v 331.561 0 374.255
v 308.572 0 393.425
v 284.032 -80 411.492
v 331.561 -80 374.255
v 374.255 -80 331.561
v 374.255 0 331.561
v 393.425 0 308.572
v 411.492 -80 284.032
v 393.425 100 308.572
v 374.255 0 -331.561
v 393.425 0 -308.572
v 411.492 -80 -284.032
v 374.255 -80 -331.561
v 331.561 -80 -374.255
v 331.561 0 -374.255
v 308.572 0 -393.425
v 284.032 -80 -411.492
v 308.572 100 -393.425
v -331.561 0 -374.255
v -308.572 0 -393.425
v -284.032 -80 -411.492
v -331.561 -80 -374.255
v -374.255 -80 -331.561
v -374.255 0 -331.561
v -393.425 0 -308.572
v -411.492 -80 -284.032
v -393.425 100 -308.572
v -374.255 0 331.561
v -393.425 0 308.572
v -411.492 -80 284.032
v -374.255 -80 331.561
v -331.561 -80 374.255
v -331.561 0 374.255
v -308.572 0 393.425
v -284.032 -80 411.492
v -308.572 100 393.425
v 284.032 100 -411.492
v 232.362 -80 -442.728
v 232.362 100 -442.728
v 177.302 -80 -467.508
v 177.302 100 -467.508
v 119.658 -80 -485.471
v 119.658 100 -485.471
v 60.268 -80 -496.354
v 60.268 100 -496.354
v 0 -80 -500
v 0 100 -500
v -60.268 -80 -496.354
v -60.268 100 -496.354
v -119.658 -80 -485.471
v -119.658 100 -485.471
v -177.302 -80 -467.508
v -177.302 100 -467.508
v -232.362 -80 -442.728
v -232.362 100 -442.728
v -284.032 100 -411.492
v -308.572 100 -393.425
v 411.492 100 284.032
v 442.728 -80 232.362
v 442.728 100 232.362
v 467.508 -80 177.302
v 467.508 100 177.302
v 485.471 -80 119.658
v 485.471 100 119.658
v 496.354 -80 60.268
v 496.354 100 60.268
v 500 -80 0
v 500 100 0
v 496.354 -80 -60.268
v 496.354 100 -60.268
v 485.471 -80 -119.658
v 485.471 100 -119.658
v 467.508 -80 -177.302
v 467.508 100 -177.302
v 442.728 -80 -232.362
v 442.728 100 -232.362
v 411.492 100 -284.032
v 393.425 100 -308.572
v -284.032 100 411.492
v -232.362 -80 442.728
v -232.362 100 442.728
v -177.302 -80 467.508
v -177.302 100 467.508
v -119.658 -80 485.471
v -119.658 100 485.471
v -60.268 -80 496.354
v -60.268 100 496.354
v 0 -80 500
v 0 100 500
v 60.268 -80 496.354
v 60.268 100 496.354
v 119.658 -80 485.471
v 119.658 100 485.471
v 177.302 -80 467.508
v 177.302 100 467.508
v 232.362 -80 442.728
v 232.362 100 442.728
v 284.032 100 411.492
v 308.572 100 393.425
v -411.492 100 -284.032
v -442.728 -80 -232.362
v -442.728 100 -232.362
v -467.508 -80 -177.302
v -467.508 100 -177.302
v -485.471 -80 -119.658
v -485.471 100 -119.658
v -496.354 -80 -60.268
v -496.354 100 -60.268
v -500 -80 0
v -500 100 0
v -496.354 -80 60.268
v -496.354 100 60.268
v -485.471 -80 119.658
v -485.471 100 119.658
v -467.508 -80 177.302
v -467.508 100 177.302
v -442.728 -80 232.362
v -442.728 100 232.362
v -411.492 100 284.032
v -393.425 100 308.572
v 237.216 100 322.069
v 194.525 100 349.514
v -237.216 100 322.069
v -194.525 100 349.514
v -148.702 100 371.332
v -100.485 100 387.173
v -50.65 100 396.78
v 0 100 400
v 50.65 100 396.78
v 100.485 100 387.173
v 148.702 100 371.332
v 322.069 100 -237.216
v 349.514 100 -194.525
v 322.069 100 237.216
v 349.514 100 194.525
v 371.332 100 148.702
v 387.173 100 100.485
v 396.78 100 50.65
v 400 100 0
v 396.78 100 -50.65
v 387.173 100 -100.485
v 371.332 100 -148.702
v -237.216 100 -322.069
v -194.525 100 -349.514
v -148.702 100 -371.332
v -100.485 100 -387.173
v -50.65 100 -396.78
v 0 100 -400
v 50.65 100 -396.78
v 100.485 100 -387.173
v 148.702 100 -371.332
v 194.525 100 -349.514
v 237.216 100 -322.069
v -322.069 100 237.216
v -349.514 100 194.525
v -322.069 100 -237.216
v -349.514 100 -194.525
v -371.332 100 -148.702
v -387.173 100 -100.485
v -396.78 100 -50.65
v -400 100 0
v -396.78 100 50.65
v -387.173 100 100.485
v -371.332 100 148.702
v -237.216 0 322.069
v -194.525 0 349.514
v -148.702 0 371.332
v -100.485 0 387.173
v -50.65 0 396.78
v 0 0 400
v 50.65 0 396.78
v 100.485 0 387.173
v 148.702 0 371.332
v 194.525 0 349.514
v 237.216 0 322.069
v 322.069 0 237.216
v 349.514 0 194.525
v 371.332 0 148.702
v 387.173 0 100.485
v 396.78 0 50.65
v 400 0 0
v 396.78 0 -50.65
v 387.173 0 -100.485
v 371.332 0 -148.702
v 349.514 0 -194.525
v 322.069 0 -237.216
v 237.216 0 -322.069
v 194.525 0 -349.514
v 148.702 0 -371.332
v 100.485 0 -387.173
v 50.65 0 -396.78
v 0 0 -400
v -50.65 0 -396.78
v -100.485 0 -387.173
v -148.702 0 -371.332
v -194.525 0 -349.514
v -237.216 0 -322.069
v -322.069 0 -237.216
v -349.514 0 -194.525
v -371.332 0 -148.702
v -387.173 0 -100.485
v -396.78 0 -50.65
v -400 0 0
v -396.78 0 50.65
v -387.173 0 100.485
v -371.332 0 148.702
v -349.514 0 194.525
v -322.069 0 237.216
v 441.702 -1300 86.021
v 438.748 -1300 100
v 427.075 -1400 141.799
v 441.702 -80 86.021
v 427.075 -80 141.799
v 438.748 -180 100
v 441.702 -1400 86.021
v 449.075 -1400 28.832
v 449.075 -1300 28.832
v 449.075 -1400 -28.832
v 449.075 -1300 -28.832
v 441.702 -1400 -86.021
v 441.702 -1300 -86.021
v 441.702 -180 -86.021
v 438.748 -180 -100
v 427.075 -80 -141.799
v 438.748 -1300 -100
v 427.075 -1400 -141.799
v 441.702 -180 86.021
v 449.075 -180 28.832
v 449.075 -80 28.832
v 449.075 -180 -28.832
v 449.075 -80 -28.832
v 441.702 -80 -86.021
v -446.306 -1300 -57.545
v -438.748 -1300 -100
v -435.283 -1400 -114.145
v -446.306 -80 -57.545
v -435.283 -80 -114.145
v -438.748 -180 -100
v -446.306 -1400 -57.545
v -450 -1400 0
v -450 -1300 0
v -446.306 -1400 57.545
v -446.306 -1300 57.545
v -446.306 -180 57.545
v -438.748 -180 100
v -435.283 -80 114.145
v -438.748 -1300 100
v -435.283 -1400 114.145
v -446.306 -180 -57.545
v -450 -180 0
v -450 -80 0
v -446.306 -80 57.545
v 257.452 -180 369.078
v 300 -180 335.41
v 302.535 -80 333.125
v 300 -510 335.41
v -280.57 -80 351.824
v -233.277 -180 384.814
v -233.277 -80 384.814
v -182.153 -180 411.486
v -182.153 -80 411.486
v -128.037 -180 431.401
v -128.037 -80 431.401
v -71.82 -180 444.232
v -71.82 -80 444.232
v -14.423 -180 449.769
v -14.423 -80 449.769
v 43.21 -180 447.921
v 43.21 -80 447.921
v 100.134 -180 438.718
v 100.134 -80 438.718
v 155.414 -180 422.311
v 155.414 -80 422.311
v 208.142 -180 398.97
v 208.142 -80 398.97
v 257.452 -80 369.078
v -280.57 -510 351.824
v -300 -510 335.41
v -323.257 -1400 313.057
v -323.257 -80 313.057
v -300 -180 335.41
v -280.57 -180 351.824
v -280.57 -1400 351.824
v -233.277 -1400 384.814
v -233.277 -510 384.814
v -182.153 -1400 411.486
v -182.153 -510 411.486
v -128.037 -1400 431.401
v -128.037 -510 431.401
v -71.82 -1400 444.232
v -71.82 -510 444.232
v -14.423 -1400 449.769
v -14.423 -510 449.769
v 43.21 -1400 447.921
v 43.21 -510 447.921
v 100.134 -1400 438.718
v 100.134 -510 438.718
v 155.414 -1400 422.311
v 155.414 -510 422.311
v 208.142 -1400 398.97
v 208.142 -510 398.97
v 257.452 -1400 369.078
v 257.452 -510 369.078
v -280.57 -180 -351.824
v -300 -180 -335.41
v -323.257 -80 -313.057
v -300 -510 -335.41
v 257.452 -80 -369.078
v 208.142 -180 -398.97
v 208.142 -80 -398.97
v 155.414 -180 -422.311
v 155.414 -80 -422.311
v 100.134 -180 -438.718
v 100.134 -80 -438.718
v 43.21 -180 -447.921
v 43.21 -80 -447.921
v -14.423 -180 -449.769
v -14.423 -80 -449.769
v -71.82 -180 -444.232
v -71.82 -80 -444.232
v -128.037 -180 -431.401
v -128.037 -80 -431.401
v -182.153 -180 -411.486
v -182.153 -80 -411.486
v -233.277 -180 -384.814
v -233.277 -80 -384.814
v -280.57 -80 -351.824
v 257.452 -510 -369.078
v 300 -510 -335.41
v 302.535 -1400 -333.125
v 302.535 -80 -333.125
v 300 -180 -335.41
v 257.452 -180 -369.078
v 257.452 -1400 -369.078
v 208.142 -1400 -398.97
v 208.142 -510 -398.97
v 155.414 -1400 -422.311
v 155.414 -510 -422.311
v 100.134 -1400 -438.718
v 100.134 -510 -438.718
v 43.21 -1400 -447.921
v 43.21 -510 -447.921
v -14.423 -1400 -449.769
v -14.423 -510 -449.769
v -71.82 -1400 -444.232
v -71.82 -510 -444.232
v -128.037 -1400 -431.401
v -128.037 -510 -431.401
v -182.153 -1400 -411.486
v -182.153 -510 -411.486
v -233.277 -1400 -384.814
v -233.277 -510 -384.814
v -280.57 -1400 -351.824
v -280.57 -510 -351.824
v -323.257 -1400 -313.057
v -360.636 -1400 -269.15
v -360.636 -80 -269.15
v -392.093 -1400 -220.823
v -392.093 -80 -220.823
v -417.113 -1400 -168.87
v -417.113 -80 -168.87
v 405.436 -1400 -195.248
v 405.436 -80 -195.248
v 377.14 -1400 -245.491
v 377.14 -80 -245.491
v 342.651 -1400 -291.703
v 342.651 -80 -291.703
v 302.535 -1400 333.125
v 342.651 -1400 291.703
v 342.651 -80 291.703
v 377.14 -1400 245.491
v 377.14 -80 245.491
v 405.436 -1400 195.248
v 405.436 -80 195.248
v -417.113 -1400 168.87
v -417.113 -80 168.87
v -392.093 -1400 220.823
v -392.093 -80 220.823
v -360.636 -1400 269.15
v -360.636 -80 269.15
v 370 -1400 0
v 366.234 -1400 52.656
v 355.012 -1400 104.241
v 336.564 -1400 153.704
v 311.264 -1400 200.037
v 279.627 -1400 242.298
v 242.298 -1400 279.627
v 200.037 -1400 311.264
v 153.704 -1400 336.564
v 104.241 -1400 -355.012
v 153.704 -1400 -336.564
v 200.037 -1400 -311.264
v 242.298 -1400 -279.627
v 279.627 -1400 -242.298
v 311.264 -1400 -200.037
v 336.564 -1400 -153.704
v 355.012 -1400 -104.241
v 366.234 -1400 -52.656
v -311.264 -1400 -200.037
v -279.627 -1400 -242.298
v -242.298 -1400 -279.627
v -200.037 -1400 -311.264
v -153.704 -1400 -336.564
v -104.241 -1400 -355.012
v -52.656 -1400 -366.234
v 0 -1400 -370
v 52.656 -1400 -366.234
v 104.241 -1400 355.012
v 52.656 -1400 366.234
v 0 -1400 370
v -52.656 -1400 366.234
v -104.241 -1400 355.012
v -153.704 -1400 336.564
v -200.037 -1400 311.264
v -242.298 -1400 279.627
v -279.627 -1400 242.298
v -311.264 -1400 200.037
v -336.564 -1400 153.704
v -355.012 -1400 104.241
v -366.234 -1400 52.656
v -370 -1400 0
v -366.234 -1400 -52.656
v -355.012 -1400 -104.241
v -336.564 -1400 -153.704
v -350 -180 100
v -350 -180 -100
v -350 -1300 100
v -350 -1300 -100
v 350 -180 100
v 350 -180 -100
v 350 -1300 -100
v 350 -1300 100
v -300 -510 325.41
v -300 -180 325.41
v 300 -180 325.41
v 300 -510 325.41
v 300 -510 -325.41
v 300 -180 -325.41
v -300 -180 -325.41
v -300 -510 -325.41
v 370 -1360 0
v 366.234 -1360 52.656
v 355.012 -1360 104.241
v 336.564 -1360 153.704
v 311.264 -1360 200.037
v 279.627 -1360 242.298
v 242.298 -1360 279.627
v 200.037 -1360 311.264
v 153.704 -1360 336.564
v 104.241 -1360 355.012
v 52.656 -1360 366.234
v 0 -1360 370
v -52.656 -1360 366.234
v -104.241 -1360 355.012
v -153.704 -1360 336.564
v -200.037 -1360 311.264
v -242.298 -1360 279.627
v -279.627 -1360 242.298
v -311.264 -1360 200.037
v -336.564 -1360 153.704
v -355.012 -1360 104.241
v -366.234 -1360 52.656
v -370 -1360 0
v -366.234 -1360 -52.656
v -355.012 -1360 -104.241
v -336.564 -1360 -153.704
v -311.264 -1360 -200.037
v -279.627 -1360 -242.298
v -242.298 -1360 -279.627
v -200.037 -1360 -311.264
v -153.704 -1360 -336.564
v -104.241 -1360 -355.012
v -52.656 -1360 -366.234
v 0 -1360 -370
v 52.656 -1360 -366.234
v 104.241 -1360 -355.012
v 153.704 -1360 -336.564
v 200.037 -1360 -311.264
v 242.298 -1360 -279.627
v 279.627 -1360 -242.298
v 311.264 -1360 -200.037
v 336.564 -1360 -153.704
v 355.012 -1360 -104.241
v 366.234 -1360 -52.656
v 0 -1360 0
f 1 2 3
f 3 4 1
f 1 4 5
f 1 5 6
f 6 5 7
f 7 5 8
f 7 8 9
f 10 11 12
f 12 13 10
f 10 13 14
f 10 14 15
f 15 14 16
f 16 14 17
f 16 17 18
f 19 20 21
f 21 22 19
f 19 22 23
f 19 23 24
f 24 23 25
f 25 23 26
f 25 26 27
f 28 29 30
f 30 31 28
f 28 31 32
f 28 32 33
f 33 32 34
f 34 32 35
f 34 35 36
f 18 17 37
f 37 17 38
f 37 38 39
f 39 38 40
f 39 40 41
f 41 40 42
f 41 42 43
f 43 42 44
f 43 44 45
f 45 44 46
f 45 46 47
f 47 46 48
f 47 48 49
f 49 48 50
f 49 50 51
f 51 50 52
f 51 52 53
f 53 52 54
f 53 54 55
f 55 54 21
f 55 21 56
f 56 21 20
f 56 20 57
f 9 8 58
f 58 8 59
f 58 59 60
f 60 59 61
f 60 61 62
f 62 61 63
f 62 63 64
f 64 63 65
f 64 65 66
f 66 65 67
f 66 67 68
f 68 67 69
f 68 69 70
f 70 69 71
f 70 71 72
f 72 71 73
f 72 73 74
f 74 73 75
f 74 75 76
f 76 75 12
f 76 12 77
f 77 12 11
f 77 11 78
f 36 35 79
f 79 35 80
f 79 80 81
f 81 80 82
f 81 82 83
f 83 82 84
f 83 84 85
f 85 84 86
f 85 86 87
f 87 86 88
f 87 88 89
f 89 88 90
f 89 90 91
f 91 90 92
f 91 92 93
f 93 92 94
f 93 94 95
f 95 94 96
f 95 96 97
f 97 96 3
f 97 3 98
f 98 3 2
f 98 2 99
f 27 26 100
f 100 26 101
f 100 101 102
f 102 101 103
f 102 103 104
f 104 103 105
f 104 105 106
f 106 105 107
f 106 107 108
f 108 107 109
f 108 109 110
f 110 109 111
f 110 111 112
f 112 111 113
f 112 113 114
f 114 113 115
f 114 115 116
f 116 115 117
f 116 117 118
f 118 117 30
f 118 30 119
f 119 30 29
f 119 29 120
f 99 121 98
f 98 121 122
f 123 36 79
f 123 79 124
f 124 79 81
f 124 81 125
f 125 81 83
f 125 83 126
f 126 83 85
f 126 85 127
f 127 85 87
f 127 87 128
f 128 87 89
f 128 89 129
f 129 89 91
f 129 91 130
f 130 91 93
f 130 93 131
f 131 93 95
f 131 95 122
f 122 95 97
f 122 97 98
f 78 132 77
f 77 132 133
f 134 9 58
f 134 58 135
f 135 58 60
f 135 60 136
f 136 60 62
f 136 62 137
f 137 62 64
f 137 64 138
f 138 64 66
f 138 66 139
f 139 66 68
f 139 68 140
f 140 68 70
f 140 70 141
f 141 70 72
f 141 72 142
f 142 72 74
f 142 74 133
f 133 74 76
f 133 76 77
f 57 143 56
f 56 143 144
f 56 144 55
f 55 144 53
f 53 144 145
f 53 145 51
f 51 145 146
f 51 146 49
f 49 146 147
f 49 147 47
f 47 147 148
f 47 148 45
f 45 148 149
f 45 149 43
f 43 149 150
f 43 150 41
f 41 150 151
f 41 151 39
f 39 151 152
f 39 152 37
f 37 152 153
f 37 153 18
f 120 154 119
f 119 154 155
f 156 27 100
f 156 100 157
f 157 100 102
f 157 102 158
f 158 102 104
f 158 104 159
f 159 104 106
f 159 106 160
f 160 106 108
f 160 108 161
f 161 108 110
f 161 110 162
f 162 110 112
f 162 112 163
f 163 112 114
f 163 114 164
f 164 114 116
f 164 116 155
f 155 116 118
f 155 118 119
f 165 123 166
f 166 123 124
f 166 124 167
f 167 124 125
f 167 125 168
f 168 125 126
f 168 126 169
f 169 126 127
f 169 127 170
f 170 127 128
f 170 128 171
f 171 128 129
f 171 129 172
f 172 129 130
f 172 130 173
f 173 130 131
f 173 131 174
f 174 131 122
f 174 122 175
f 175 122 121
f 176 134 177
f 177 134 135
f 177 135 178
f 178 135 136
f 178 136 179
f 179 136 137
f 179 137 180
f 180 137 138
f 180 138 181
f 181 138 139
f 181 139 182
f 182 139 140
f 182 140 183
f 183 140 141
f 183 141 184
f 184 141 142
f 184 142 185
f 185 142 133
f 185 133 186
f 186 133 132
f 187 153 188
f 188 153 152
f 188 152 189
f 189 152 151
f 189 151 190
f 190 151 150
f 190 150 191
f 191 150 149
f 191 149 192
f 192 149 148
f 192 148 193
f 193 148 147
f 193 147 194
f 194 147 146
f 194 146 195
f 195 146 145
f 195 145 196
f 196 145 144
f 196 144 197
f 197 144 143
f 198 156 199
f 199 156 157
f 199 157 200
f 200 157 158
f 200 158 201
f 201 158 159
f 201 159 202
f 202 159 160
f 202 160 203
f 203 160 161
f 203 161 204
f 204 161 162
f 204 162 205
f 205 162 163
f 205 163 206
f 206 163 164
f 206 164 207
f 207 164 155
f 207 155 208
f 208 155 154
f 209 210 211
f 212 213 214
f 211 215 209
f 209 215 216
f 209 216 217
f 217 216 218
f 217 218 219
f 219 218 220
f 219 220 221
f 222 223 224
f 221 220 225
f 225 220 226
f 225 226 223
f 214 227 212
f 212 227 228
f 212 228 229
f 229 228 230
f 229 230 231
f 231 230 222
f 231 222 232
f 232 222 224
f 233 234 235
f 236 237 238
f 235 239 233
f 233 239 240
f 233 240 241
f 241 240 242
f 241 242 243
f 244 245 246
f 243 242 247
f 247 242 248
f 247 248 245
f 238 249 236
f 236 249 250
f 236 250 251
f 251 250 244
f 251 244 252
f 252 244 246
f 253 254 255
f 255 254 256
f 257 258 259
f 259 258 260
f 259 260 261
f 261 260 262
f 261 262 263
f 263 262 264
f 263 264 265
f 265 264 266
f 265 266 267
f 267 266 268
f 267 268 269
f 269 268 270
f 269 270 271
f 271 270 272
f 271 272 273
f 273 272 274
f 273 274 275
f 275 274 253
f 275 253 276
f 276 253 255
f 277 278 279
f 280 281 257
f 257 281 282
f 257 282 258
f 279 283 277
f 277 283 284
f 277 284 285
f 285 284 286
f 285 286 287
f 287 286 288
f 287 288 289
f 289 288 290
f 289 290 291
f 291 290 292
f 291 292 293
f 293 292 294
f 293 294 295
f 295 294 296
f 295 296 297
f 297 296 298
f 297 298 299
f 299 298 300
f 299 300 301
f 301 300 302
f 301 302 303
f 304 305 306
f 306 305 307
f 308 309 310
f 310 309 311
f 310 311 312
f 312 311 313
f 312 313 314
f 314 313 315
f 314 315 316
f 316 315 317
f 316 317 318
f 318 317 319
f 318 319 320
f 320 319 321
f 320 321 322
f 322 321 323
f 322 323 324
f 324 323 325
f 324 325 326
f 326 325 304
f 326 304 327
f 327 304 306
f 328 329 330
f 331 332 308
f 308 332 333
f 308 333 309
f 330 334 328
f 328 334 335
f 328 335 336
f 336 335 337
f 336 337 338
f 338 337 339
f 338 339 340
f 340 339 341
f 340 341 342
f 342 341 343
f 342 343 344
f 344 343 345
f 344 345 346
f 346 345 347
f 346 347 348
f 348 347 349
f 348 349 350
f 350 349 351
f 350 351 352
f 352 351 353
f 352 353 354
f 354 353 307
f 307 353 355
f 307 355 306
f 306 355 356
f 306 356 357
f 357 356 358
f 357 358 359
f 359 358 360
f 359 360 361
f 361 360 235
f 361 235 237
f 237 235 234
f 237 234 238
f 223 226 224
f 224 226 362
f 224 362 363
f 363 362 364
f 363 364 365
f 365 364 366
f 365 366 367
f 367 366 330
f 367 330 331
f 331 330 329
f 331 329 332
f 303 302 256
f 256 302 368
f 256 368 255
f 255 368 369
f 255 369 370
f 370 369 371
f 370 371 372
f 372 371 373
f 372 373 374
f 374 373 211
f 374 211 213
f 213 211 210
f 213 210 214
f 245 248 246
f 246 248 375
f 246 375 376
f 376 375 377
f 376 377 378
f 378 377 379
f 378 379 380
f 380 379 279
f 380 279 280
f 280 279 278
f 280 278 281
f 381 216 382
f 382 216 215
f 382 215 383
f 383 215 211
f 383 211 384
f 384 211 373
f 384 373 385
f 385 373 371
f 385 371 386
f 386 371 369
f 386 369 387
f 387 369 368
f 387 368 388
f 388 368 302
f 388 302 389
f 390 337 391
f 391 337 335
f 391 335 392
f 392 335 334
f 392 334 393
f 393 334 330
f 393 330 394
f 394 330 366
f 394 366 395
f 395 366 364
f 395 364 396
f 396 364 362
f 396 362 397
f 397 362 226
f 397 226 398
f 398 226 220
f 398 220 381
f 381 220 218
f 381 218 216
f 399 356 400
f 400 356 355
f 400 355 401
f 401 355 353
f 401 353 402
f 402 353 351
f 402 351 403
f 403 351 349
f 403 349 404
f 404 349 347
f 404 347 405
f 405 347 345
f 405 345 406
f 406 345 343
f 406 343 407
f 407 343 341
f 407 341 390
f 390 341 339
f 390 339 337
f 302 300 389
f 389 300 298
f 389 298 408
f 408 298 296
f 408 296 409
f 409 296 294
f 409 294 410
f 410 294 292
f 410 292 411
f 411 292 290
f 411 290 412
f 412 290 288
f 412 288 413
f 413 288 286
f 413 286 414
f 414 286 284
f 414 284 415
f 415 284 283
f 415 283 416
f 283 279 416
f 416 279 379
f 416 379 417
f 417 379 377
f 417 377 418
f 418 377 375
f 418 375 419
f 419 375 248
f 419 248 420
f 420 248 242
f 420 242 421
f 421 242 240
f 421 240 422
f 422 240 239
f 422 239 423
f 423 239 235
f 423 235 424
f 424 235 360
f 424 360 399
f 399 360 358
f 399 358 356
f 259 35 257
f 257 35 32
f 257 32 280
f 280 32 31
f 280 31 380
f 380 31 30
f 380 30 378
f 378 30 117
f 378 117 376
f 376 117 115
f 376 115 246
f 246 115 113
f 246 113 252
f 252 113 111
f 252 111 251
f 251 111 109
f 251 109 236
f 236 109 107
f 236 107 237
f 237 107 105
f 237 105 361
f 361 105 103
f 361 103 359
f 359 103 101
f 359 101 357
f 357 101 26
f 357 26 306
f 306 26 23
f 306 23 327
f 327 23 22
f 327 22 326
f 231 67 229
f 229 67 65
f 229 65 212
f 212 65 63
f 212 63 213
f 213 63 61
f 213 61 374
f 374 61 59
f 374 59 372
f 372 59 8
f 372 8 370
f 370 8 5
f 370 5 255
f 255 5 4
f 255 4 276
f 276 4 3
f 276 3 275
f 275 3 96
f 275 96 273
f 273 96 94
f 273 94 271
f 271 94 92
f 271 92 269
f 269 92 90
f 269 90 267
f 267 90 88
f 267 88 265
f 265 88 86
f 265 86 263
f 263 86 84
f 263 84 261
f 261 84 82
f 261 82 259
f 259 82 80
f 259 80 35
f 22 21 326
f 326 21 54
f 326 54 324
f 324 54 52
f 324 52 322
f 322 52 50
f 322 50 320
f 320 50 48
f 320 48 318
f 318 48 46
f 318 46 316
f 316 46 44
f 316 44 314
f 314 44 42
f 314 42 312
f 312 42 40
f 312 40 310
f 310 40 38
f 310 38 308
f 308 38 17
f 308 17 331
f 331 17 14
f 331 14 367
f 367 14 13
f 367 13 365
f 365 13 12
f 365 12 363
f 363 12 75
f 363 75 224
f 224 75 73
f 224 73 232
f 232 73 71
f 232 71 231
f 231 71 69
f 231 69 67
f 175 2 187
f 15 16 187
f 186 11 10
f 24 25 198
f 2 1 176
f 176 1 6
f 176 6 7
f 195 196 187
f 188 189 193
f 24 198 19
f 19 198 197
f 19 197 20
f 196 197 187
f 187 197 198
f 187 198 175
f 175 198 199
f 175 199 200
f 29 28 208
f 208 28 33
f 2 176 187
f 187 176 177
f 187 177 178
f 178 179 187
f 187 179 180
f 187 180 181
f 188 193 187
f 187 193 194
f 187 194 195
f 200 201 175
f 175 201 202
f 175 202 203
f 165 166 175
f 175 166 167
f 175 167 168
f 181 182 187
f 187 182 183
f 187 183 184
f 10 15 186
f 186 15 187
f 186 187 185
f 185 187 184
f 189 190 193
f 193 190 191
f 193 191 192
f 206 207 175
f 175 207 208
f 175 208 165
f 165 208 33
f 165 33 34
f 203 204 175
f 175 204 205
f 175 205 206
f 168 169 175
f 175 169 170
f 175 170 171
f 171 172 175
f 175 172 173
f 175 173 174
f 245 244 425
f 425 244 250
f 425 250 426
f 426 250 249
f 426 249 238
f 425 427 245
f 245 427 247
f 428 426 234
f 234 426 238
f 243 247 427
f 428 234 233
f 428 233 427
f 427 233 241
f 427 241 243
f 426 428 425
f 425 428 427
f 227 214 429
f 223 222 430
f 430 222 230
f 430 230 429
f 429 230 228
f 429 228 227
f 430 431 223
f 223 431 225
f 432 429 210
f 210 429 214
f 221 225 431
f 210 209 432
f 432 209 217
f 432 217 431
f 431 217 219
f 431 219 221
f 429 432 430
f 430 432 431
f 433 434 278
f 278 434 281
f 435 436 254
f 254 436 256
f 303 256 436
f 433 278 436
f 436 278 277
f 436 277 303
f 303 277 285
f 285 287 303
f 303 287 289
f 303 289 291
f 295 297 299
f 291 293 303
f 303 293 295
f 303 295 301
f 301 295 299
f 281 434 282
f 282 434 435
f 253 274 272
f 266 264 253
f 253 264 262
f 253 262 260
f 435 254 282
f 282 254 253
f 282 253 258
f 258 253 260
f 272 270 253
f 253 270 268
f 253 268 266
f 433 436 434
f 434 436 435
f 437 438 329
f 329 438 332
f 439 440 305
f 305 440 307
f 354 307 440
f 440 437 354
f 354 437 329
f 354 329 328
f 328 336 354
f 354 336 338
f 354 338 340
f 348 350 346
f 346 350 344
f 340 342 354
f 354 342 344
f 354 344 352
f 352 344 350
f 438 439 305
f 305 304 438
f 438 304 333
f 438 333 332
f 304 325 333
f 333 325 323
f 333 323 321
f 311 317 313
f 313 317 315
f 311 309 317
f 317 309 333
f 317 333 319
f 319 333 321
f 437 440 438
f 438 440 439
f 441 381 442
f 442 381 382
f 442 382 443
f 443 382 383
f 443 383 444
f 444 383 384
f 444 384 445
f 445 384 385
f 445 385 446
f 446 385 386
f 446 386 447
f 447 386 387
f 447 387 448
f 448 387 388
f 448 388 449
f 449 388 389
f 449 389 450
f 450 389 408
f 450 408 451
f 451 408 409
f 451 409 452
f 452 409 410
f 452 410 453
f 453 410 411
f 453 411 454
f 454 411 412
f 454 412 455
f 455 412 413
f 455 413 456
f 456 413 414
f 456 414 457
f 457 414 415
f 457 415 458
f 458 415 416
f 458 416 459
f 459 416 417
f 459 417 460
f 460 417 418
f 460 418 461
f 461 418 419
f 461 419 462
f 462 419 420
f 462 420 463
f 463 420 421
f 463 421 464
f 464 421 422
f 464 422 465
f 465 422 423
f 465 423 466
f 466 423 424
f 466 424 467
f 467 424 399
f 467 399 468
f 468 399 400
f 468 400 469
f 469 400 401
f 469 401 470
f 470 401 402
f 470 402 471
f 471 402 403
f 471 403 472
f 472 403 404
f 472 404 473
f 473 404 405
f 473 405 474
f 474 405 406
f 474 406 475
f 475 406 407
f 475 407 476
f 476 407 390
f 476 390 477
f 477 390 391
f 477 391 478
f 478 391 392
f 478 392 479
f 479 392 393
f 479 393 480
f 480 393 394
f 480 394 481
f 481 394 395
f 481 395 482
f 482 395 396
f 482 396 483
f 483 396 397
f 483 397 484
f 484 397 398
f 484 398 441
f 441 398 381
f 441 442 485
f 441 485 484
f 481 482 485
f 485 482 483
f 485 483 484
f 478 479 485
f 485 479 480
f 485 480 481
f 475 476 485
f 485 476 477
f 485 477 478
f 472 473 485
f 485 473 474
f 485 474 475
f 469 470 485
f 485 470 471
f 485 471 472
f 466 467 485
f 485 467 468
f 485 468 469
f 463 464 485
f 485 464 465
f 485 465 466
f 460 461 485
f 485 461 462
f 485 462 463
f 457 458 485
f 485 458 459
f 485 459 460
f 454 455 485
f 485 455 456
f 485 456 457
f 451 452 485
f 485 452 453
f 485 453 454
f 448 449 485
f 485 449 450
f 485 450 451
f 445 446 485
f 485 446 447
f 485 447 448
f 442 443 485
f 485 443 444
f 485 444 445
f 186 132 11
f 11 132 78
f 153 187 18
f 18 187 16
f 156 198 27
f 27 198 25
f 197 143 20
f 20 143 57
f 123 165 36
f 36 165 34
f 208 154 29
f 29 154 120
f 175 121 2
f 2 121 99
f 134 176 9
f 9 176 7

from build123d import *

# Parameters (mm, degrees)
SOLAR_DIVOT_SKETCH_W              = 100
SOLAR_DIVOT_SKETCH_H              = 200
SOLAR_DIVOT_CUT_DEPTH             = 1120
MISC_BAY_SKETCH_W                 = 600
MISC_BAY_SKETCH_H                 = 124.589803375
MISC_BAY_CUT_DEPTH                = 330
LAUNCH_ADAPTOR_BAY_SKETCH_R       = 370
LAUNCH_ADAPTOR_BAY_CUT_DEPTH      = 40
GRIPPER_GAP_CUT_DEPTH             = 100
GRIPPER_GAP_CUT_PROPAGATION_COUNT = 4


with BuildPart() as part:
    # Body Block Sketch → Body Block Revolve (revolve)
    with BuildSketch(Plane.XY, mode=Mode.PRIVATE) as body_block_revolve_sk:
        Polygon((0, 0), (400, 0), (400, 100), (500, 100), (500, 0), (500, -80), (450, -80), (450, -1400), (0, -1400), align=None)
    revolve(body_block_revolve_sk.sketch.rotate(Axis((0, 0, 0), (0, -1, 0)), 180), axis=Axis((0, 0, 0), (0, -1, 0)))

    # Solar Divot Sketch → Solar Divot Cut (cut)
    with BuildSketch(Plane(origin=(0, -180, 0), x_dir=(-1, 0, 0), z_dir=(0, -1, 0))):
        with Locations((-400, 0)):
            Rectangle(SOLAR_DIVOT_SKETCH_W, SOLAR_DIVOT_SKETCH_H)
        with Locations((400, 0)):
            Rectangle(SOLAR_DIVOT_SKETCH_W, SOLAR_DIVOT_SKETCH_H)
    extrude(amount=SOLAR_DIVOT_CUT_DEPTH, mode=Mode.SUBTRACT)

    # Misc Bay Sketch → Misc Bay Cut (cut)
    with BuildSketch(Plane(origin=(0, -180, 0), x_dir=(-1, 0, 0), z_dir=(0, -1, 0))):
        with Locations((0, 387.705098313)):
            Rectangle(MISC_BAY_SKETCH_W, MISC_BAY_SKETCH_H)
        with Locations((0, -387.705098313)):
            Rectangle(MISC_BAY_SKETCH_W, MISC_BAY_SKETCH_H)
    extrude(amount=MISC_BAY_CUT_DEPTH, mode=Mode.SUBTRACT)

    # Launch Adaptor Bay Sketch → Launch Adaptor Bay Cut (cut)
    with BuildSketch(Plane.XZ.offset(1400)):
        Circle(LAUNCH_ADAPTOR_BAY_SKETCH_R)
    extrude(amount=-LAUNCH_ADAPTOR_BAY_CUT_DEPTH, mode=Mode.SUBTRACT)

    # Gripper Gap Sketch → Gripper Gap Cut (cut)
    with BuildSketch(Plane(origin=(0, 0, 0), x_dir=(1, 0, 0), z_dir=(0, 1, 0))):
        Polygon((311.126983722, 395.979797464), (395.979797464, 311.126983722), (42.426406871, -42.426406871), (-42.426406871, 42.426406871), align=None)
    gripper_gap_cut = extrude(amount=GRIPPER_GAP_CUT_DEPTH, mode=Mode.SUBTRACT)

    # Gripper Gap Cut Propagation: Gripper Gap Cut ×4 about axis
    gripper_gap_cut_propagation_axis = Axis((0, 0, 0), (0, 1, 0))
    for i in range(1, GRIPPER_GAP_CUT_PROPAGATION_COUNT):
        add(gripper_gap_cut.rotate(gripper_gap_cut_propagation_axis, i * 360 / GRIPPER_GAP_CUT_PROPAGATION_COUNT), mode=Mode.SUBTRACT)


solid = part.part
